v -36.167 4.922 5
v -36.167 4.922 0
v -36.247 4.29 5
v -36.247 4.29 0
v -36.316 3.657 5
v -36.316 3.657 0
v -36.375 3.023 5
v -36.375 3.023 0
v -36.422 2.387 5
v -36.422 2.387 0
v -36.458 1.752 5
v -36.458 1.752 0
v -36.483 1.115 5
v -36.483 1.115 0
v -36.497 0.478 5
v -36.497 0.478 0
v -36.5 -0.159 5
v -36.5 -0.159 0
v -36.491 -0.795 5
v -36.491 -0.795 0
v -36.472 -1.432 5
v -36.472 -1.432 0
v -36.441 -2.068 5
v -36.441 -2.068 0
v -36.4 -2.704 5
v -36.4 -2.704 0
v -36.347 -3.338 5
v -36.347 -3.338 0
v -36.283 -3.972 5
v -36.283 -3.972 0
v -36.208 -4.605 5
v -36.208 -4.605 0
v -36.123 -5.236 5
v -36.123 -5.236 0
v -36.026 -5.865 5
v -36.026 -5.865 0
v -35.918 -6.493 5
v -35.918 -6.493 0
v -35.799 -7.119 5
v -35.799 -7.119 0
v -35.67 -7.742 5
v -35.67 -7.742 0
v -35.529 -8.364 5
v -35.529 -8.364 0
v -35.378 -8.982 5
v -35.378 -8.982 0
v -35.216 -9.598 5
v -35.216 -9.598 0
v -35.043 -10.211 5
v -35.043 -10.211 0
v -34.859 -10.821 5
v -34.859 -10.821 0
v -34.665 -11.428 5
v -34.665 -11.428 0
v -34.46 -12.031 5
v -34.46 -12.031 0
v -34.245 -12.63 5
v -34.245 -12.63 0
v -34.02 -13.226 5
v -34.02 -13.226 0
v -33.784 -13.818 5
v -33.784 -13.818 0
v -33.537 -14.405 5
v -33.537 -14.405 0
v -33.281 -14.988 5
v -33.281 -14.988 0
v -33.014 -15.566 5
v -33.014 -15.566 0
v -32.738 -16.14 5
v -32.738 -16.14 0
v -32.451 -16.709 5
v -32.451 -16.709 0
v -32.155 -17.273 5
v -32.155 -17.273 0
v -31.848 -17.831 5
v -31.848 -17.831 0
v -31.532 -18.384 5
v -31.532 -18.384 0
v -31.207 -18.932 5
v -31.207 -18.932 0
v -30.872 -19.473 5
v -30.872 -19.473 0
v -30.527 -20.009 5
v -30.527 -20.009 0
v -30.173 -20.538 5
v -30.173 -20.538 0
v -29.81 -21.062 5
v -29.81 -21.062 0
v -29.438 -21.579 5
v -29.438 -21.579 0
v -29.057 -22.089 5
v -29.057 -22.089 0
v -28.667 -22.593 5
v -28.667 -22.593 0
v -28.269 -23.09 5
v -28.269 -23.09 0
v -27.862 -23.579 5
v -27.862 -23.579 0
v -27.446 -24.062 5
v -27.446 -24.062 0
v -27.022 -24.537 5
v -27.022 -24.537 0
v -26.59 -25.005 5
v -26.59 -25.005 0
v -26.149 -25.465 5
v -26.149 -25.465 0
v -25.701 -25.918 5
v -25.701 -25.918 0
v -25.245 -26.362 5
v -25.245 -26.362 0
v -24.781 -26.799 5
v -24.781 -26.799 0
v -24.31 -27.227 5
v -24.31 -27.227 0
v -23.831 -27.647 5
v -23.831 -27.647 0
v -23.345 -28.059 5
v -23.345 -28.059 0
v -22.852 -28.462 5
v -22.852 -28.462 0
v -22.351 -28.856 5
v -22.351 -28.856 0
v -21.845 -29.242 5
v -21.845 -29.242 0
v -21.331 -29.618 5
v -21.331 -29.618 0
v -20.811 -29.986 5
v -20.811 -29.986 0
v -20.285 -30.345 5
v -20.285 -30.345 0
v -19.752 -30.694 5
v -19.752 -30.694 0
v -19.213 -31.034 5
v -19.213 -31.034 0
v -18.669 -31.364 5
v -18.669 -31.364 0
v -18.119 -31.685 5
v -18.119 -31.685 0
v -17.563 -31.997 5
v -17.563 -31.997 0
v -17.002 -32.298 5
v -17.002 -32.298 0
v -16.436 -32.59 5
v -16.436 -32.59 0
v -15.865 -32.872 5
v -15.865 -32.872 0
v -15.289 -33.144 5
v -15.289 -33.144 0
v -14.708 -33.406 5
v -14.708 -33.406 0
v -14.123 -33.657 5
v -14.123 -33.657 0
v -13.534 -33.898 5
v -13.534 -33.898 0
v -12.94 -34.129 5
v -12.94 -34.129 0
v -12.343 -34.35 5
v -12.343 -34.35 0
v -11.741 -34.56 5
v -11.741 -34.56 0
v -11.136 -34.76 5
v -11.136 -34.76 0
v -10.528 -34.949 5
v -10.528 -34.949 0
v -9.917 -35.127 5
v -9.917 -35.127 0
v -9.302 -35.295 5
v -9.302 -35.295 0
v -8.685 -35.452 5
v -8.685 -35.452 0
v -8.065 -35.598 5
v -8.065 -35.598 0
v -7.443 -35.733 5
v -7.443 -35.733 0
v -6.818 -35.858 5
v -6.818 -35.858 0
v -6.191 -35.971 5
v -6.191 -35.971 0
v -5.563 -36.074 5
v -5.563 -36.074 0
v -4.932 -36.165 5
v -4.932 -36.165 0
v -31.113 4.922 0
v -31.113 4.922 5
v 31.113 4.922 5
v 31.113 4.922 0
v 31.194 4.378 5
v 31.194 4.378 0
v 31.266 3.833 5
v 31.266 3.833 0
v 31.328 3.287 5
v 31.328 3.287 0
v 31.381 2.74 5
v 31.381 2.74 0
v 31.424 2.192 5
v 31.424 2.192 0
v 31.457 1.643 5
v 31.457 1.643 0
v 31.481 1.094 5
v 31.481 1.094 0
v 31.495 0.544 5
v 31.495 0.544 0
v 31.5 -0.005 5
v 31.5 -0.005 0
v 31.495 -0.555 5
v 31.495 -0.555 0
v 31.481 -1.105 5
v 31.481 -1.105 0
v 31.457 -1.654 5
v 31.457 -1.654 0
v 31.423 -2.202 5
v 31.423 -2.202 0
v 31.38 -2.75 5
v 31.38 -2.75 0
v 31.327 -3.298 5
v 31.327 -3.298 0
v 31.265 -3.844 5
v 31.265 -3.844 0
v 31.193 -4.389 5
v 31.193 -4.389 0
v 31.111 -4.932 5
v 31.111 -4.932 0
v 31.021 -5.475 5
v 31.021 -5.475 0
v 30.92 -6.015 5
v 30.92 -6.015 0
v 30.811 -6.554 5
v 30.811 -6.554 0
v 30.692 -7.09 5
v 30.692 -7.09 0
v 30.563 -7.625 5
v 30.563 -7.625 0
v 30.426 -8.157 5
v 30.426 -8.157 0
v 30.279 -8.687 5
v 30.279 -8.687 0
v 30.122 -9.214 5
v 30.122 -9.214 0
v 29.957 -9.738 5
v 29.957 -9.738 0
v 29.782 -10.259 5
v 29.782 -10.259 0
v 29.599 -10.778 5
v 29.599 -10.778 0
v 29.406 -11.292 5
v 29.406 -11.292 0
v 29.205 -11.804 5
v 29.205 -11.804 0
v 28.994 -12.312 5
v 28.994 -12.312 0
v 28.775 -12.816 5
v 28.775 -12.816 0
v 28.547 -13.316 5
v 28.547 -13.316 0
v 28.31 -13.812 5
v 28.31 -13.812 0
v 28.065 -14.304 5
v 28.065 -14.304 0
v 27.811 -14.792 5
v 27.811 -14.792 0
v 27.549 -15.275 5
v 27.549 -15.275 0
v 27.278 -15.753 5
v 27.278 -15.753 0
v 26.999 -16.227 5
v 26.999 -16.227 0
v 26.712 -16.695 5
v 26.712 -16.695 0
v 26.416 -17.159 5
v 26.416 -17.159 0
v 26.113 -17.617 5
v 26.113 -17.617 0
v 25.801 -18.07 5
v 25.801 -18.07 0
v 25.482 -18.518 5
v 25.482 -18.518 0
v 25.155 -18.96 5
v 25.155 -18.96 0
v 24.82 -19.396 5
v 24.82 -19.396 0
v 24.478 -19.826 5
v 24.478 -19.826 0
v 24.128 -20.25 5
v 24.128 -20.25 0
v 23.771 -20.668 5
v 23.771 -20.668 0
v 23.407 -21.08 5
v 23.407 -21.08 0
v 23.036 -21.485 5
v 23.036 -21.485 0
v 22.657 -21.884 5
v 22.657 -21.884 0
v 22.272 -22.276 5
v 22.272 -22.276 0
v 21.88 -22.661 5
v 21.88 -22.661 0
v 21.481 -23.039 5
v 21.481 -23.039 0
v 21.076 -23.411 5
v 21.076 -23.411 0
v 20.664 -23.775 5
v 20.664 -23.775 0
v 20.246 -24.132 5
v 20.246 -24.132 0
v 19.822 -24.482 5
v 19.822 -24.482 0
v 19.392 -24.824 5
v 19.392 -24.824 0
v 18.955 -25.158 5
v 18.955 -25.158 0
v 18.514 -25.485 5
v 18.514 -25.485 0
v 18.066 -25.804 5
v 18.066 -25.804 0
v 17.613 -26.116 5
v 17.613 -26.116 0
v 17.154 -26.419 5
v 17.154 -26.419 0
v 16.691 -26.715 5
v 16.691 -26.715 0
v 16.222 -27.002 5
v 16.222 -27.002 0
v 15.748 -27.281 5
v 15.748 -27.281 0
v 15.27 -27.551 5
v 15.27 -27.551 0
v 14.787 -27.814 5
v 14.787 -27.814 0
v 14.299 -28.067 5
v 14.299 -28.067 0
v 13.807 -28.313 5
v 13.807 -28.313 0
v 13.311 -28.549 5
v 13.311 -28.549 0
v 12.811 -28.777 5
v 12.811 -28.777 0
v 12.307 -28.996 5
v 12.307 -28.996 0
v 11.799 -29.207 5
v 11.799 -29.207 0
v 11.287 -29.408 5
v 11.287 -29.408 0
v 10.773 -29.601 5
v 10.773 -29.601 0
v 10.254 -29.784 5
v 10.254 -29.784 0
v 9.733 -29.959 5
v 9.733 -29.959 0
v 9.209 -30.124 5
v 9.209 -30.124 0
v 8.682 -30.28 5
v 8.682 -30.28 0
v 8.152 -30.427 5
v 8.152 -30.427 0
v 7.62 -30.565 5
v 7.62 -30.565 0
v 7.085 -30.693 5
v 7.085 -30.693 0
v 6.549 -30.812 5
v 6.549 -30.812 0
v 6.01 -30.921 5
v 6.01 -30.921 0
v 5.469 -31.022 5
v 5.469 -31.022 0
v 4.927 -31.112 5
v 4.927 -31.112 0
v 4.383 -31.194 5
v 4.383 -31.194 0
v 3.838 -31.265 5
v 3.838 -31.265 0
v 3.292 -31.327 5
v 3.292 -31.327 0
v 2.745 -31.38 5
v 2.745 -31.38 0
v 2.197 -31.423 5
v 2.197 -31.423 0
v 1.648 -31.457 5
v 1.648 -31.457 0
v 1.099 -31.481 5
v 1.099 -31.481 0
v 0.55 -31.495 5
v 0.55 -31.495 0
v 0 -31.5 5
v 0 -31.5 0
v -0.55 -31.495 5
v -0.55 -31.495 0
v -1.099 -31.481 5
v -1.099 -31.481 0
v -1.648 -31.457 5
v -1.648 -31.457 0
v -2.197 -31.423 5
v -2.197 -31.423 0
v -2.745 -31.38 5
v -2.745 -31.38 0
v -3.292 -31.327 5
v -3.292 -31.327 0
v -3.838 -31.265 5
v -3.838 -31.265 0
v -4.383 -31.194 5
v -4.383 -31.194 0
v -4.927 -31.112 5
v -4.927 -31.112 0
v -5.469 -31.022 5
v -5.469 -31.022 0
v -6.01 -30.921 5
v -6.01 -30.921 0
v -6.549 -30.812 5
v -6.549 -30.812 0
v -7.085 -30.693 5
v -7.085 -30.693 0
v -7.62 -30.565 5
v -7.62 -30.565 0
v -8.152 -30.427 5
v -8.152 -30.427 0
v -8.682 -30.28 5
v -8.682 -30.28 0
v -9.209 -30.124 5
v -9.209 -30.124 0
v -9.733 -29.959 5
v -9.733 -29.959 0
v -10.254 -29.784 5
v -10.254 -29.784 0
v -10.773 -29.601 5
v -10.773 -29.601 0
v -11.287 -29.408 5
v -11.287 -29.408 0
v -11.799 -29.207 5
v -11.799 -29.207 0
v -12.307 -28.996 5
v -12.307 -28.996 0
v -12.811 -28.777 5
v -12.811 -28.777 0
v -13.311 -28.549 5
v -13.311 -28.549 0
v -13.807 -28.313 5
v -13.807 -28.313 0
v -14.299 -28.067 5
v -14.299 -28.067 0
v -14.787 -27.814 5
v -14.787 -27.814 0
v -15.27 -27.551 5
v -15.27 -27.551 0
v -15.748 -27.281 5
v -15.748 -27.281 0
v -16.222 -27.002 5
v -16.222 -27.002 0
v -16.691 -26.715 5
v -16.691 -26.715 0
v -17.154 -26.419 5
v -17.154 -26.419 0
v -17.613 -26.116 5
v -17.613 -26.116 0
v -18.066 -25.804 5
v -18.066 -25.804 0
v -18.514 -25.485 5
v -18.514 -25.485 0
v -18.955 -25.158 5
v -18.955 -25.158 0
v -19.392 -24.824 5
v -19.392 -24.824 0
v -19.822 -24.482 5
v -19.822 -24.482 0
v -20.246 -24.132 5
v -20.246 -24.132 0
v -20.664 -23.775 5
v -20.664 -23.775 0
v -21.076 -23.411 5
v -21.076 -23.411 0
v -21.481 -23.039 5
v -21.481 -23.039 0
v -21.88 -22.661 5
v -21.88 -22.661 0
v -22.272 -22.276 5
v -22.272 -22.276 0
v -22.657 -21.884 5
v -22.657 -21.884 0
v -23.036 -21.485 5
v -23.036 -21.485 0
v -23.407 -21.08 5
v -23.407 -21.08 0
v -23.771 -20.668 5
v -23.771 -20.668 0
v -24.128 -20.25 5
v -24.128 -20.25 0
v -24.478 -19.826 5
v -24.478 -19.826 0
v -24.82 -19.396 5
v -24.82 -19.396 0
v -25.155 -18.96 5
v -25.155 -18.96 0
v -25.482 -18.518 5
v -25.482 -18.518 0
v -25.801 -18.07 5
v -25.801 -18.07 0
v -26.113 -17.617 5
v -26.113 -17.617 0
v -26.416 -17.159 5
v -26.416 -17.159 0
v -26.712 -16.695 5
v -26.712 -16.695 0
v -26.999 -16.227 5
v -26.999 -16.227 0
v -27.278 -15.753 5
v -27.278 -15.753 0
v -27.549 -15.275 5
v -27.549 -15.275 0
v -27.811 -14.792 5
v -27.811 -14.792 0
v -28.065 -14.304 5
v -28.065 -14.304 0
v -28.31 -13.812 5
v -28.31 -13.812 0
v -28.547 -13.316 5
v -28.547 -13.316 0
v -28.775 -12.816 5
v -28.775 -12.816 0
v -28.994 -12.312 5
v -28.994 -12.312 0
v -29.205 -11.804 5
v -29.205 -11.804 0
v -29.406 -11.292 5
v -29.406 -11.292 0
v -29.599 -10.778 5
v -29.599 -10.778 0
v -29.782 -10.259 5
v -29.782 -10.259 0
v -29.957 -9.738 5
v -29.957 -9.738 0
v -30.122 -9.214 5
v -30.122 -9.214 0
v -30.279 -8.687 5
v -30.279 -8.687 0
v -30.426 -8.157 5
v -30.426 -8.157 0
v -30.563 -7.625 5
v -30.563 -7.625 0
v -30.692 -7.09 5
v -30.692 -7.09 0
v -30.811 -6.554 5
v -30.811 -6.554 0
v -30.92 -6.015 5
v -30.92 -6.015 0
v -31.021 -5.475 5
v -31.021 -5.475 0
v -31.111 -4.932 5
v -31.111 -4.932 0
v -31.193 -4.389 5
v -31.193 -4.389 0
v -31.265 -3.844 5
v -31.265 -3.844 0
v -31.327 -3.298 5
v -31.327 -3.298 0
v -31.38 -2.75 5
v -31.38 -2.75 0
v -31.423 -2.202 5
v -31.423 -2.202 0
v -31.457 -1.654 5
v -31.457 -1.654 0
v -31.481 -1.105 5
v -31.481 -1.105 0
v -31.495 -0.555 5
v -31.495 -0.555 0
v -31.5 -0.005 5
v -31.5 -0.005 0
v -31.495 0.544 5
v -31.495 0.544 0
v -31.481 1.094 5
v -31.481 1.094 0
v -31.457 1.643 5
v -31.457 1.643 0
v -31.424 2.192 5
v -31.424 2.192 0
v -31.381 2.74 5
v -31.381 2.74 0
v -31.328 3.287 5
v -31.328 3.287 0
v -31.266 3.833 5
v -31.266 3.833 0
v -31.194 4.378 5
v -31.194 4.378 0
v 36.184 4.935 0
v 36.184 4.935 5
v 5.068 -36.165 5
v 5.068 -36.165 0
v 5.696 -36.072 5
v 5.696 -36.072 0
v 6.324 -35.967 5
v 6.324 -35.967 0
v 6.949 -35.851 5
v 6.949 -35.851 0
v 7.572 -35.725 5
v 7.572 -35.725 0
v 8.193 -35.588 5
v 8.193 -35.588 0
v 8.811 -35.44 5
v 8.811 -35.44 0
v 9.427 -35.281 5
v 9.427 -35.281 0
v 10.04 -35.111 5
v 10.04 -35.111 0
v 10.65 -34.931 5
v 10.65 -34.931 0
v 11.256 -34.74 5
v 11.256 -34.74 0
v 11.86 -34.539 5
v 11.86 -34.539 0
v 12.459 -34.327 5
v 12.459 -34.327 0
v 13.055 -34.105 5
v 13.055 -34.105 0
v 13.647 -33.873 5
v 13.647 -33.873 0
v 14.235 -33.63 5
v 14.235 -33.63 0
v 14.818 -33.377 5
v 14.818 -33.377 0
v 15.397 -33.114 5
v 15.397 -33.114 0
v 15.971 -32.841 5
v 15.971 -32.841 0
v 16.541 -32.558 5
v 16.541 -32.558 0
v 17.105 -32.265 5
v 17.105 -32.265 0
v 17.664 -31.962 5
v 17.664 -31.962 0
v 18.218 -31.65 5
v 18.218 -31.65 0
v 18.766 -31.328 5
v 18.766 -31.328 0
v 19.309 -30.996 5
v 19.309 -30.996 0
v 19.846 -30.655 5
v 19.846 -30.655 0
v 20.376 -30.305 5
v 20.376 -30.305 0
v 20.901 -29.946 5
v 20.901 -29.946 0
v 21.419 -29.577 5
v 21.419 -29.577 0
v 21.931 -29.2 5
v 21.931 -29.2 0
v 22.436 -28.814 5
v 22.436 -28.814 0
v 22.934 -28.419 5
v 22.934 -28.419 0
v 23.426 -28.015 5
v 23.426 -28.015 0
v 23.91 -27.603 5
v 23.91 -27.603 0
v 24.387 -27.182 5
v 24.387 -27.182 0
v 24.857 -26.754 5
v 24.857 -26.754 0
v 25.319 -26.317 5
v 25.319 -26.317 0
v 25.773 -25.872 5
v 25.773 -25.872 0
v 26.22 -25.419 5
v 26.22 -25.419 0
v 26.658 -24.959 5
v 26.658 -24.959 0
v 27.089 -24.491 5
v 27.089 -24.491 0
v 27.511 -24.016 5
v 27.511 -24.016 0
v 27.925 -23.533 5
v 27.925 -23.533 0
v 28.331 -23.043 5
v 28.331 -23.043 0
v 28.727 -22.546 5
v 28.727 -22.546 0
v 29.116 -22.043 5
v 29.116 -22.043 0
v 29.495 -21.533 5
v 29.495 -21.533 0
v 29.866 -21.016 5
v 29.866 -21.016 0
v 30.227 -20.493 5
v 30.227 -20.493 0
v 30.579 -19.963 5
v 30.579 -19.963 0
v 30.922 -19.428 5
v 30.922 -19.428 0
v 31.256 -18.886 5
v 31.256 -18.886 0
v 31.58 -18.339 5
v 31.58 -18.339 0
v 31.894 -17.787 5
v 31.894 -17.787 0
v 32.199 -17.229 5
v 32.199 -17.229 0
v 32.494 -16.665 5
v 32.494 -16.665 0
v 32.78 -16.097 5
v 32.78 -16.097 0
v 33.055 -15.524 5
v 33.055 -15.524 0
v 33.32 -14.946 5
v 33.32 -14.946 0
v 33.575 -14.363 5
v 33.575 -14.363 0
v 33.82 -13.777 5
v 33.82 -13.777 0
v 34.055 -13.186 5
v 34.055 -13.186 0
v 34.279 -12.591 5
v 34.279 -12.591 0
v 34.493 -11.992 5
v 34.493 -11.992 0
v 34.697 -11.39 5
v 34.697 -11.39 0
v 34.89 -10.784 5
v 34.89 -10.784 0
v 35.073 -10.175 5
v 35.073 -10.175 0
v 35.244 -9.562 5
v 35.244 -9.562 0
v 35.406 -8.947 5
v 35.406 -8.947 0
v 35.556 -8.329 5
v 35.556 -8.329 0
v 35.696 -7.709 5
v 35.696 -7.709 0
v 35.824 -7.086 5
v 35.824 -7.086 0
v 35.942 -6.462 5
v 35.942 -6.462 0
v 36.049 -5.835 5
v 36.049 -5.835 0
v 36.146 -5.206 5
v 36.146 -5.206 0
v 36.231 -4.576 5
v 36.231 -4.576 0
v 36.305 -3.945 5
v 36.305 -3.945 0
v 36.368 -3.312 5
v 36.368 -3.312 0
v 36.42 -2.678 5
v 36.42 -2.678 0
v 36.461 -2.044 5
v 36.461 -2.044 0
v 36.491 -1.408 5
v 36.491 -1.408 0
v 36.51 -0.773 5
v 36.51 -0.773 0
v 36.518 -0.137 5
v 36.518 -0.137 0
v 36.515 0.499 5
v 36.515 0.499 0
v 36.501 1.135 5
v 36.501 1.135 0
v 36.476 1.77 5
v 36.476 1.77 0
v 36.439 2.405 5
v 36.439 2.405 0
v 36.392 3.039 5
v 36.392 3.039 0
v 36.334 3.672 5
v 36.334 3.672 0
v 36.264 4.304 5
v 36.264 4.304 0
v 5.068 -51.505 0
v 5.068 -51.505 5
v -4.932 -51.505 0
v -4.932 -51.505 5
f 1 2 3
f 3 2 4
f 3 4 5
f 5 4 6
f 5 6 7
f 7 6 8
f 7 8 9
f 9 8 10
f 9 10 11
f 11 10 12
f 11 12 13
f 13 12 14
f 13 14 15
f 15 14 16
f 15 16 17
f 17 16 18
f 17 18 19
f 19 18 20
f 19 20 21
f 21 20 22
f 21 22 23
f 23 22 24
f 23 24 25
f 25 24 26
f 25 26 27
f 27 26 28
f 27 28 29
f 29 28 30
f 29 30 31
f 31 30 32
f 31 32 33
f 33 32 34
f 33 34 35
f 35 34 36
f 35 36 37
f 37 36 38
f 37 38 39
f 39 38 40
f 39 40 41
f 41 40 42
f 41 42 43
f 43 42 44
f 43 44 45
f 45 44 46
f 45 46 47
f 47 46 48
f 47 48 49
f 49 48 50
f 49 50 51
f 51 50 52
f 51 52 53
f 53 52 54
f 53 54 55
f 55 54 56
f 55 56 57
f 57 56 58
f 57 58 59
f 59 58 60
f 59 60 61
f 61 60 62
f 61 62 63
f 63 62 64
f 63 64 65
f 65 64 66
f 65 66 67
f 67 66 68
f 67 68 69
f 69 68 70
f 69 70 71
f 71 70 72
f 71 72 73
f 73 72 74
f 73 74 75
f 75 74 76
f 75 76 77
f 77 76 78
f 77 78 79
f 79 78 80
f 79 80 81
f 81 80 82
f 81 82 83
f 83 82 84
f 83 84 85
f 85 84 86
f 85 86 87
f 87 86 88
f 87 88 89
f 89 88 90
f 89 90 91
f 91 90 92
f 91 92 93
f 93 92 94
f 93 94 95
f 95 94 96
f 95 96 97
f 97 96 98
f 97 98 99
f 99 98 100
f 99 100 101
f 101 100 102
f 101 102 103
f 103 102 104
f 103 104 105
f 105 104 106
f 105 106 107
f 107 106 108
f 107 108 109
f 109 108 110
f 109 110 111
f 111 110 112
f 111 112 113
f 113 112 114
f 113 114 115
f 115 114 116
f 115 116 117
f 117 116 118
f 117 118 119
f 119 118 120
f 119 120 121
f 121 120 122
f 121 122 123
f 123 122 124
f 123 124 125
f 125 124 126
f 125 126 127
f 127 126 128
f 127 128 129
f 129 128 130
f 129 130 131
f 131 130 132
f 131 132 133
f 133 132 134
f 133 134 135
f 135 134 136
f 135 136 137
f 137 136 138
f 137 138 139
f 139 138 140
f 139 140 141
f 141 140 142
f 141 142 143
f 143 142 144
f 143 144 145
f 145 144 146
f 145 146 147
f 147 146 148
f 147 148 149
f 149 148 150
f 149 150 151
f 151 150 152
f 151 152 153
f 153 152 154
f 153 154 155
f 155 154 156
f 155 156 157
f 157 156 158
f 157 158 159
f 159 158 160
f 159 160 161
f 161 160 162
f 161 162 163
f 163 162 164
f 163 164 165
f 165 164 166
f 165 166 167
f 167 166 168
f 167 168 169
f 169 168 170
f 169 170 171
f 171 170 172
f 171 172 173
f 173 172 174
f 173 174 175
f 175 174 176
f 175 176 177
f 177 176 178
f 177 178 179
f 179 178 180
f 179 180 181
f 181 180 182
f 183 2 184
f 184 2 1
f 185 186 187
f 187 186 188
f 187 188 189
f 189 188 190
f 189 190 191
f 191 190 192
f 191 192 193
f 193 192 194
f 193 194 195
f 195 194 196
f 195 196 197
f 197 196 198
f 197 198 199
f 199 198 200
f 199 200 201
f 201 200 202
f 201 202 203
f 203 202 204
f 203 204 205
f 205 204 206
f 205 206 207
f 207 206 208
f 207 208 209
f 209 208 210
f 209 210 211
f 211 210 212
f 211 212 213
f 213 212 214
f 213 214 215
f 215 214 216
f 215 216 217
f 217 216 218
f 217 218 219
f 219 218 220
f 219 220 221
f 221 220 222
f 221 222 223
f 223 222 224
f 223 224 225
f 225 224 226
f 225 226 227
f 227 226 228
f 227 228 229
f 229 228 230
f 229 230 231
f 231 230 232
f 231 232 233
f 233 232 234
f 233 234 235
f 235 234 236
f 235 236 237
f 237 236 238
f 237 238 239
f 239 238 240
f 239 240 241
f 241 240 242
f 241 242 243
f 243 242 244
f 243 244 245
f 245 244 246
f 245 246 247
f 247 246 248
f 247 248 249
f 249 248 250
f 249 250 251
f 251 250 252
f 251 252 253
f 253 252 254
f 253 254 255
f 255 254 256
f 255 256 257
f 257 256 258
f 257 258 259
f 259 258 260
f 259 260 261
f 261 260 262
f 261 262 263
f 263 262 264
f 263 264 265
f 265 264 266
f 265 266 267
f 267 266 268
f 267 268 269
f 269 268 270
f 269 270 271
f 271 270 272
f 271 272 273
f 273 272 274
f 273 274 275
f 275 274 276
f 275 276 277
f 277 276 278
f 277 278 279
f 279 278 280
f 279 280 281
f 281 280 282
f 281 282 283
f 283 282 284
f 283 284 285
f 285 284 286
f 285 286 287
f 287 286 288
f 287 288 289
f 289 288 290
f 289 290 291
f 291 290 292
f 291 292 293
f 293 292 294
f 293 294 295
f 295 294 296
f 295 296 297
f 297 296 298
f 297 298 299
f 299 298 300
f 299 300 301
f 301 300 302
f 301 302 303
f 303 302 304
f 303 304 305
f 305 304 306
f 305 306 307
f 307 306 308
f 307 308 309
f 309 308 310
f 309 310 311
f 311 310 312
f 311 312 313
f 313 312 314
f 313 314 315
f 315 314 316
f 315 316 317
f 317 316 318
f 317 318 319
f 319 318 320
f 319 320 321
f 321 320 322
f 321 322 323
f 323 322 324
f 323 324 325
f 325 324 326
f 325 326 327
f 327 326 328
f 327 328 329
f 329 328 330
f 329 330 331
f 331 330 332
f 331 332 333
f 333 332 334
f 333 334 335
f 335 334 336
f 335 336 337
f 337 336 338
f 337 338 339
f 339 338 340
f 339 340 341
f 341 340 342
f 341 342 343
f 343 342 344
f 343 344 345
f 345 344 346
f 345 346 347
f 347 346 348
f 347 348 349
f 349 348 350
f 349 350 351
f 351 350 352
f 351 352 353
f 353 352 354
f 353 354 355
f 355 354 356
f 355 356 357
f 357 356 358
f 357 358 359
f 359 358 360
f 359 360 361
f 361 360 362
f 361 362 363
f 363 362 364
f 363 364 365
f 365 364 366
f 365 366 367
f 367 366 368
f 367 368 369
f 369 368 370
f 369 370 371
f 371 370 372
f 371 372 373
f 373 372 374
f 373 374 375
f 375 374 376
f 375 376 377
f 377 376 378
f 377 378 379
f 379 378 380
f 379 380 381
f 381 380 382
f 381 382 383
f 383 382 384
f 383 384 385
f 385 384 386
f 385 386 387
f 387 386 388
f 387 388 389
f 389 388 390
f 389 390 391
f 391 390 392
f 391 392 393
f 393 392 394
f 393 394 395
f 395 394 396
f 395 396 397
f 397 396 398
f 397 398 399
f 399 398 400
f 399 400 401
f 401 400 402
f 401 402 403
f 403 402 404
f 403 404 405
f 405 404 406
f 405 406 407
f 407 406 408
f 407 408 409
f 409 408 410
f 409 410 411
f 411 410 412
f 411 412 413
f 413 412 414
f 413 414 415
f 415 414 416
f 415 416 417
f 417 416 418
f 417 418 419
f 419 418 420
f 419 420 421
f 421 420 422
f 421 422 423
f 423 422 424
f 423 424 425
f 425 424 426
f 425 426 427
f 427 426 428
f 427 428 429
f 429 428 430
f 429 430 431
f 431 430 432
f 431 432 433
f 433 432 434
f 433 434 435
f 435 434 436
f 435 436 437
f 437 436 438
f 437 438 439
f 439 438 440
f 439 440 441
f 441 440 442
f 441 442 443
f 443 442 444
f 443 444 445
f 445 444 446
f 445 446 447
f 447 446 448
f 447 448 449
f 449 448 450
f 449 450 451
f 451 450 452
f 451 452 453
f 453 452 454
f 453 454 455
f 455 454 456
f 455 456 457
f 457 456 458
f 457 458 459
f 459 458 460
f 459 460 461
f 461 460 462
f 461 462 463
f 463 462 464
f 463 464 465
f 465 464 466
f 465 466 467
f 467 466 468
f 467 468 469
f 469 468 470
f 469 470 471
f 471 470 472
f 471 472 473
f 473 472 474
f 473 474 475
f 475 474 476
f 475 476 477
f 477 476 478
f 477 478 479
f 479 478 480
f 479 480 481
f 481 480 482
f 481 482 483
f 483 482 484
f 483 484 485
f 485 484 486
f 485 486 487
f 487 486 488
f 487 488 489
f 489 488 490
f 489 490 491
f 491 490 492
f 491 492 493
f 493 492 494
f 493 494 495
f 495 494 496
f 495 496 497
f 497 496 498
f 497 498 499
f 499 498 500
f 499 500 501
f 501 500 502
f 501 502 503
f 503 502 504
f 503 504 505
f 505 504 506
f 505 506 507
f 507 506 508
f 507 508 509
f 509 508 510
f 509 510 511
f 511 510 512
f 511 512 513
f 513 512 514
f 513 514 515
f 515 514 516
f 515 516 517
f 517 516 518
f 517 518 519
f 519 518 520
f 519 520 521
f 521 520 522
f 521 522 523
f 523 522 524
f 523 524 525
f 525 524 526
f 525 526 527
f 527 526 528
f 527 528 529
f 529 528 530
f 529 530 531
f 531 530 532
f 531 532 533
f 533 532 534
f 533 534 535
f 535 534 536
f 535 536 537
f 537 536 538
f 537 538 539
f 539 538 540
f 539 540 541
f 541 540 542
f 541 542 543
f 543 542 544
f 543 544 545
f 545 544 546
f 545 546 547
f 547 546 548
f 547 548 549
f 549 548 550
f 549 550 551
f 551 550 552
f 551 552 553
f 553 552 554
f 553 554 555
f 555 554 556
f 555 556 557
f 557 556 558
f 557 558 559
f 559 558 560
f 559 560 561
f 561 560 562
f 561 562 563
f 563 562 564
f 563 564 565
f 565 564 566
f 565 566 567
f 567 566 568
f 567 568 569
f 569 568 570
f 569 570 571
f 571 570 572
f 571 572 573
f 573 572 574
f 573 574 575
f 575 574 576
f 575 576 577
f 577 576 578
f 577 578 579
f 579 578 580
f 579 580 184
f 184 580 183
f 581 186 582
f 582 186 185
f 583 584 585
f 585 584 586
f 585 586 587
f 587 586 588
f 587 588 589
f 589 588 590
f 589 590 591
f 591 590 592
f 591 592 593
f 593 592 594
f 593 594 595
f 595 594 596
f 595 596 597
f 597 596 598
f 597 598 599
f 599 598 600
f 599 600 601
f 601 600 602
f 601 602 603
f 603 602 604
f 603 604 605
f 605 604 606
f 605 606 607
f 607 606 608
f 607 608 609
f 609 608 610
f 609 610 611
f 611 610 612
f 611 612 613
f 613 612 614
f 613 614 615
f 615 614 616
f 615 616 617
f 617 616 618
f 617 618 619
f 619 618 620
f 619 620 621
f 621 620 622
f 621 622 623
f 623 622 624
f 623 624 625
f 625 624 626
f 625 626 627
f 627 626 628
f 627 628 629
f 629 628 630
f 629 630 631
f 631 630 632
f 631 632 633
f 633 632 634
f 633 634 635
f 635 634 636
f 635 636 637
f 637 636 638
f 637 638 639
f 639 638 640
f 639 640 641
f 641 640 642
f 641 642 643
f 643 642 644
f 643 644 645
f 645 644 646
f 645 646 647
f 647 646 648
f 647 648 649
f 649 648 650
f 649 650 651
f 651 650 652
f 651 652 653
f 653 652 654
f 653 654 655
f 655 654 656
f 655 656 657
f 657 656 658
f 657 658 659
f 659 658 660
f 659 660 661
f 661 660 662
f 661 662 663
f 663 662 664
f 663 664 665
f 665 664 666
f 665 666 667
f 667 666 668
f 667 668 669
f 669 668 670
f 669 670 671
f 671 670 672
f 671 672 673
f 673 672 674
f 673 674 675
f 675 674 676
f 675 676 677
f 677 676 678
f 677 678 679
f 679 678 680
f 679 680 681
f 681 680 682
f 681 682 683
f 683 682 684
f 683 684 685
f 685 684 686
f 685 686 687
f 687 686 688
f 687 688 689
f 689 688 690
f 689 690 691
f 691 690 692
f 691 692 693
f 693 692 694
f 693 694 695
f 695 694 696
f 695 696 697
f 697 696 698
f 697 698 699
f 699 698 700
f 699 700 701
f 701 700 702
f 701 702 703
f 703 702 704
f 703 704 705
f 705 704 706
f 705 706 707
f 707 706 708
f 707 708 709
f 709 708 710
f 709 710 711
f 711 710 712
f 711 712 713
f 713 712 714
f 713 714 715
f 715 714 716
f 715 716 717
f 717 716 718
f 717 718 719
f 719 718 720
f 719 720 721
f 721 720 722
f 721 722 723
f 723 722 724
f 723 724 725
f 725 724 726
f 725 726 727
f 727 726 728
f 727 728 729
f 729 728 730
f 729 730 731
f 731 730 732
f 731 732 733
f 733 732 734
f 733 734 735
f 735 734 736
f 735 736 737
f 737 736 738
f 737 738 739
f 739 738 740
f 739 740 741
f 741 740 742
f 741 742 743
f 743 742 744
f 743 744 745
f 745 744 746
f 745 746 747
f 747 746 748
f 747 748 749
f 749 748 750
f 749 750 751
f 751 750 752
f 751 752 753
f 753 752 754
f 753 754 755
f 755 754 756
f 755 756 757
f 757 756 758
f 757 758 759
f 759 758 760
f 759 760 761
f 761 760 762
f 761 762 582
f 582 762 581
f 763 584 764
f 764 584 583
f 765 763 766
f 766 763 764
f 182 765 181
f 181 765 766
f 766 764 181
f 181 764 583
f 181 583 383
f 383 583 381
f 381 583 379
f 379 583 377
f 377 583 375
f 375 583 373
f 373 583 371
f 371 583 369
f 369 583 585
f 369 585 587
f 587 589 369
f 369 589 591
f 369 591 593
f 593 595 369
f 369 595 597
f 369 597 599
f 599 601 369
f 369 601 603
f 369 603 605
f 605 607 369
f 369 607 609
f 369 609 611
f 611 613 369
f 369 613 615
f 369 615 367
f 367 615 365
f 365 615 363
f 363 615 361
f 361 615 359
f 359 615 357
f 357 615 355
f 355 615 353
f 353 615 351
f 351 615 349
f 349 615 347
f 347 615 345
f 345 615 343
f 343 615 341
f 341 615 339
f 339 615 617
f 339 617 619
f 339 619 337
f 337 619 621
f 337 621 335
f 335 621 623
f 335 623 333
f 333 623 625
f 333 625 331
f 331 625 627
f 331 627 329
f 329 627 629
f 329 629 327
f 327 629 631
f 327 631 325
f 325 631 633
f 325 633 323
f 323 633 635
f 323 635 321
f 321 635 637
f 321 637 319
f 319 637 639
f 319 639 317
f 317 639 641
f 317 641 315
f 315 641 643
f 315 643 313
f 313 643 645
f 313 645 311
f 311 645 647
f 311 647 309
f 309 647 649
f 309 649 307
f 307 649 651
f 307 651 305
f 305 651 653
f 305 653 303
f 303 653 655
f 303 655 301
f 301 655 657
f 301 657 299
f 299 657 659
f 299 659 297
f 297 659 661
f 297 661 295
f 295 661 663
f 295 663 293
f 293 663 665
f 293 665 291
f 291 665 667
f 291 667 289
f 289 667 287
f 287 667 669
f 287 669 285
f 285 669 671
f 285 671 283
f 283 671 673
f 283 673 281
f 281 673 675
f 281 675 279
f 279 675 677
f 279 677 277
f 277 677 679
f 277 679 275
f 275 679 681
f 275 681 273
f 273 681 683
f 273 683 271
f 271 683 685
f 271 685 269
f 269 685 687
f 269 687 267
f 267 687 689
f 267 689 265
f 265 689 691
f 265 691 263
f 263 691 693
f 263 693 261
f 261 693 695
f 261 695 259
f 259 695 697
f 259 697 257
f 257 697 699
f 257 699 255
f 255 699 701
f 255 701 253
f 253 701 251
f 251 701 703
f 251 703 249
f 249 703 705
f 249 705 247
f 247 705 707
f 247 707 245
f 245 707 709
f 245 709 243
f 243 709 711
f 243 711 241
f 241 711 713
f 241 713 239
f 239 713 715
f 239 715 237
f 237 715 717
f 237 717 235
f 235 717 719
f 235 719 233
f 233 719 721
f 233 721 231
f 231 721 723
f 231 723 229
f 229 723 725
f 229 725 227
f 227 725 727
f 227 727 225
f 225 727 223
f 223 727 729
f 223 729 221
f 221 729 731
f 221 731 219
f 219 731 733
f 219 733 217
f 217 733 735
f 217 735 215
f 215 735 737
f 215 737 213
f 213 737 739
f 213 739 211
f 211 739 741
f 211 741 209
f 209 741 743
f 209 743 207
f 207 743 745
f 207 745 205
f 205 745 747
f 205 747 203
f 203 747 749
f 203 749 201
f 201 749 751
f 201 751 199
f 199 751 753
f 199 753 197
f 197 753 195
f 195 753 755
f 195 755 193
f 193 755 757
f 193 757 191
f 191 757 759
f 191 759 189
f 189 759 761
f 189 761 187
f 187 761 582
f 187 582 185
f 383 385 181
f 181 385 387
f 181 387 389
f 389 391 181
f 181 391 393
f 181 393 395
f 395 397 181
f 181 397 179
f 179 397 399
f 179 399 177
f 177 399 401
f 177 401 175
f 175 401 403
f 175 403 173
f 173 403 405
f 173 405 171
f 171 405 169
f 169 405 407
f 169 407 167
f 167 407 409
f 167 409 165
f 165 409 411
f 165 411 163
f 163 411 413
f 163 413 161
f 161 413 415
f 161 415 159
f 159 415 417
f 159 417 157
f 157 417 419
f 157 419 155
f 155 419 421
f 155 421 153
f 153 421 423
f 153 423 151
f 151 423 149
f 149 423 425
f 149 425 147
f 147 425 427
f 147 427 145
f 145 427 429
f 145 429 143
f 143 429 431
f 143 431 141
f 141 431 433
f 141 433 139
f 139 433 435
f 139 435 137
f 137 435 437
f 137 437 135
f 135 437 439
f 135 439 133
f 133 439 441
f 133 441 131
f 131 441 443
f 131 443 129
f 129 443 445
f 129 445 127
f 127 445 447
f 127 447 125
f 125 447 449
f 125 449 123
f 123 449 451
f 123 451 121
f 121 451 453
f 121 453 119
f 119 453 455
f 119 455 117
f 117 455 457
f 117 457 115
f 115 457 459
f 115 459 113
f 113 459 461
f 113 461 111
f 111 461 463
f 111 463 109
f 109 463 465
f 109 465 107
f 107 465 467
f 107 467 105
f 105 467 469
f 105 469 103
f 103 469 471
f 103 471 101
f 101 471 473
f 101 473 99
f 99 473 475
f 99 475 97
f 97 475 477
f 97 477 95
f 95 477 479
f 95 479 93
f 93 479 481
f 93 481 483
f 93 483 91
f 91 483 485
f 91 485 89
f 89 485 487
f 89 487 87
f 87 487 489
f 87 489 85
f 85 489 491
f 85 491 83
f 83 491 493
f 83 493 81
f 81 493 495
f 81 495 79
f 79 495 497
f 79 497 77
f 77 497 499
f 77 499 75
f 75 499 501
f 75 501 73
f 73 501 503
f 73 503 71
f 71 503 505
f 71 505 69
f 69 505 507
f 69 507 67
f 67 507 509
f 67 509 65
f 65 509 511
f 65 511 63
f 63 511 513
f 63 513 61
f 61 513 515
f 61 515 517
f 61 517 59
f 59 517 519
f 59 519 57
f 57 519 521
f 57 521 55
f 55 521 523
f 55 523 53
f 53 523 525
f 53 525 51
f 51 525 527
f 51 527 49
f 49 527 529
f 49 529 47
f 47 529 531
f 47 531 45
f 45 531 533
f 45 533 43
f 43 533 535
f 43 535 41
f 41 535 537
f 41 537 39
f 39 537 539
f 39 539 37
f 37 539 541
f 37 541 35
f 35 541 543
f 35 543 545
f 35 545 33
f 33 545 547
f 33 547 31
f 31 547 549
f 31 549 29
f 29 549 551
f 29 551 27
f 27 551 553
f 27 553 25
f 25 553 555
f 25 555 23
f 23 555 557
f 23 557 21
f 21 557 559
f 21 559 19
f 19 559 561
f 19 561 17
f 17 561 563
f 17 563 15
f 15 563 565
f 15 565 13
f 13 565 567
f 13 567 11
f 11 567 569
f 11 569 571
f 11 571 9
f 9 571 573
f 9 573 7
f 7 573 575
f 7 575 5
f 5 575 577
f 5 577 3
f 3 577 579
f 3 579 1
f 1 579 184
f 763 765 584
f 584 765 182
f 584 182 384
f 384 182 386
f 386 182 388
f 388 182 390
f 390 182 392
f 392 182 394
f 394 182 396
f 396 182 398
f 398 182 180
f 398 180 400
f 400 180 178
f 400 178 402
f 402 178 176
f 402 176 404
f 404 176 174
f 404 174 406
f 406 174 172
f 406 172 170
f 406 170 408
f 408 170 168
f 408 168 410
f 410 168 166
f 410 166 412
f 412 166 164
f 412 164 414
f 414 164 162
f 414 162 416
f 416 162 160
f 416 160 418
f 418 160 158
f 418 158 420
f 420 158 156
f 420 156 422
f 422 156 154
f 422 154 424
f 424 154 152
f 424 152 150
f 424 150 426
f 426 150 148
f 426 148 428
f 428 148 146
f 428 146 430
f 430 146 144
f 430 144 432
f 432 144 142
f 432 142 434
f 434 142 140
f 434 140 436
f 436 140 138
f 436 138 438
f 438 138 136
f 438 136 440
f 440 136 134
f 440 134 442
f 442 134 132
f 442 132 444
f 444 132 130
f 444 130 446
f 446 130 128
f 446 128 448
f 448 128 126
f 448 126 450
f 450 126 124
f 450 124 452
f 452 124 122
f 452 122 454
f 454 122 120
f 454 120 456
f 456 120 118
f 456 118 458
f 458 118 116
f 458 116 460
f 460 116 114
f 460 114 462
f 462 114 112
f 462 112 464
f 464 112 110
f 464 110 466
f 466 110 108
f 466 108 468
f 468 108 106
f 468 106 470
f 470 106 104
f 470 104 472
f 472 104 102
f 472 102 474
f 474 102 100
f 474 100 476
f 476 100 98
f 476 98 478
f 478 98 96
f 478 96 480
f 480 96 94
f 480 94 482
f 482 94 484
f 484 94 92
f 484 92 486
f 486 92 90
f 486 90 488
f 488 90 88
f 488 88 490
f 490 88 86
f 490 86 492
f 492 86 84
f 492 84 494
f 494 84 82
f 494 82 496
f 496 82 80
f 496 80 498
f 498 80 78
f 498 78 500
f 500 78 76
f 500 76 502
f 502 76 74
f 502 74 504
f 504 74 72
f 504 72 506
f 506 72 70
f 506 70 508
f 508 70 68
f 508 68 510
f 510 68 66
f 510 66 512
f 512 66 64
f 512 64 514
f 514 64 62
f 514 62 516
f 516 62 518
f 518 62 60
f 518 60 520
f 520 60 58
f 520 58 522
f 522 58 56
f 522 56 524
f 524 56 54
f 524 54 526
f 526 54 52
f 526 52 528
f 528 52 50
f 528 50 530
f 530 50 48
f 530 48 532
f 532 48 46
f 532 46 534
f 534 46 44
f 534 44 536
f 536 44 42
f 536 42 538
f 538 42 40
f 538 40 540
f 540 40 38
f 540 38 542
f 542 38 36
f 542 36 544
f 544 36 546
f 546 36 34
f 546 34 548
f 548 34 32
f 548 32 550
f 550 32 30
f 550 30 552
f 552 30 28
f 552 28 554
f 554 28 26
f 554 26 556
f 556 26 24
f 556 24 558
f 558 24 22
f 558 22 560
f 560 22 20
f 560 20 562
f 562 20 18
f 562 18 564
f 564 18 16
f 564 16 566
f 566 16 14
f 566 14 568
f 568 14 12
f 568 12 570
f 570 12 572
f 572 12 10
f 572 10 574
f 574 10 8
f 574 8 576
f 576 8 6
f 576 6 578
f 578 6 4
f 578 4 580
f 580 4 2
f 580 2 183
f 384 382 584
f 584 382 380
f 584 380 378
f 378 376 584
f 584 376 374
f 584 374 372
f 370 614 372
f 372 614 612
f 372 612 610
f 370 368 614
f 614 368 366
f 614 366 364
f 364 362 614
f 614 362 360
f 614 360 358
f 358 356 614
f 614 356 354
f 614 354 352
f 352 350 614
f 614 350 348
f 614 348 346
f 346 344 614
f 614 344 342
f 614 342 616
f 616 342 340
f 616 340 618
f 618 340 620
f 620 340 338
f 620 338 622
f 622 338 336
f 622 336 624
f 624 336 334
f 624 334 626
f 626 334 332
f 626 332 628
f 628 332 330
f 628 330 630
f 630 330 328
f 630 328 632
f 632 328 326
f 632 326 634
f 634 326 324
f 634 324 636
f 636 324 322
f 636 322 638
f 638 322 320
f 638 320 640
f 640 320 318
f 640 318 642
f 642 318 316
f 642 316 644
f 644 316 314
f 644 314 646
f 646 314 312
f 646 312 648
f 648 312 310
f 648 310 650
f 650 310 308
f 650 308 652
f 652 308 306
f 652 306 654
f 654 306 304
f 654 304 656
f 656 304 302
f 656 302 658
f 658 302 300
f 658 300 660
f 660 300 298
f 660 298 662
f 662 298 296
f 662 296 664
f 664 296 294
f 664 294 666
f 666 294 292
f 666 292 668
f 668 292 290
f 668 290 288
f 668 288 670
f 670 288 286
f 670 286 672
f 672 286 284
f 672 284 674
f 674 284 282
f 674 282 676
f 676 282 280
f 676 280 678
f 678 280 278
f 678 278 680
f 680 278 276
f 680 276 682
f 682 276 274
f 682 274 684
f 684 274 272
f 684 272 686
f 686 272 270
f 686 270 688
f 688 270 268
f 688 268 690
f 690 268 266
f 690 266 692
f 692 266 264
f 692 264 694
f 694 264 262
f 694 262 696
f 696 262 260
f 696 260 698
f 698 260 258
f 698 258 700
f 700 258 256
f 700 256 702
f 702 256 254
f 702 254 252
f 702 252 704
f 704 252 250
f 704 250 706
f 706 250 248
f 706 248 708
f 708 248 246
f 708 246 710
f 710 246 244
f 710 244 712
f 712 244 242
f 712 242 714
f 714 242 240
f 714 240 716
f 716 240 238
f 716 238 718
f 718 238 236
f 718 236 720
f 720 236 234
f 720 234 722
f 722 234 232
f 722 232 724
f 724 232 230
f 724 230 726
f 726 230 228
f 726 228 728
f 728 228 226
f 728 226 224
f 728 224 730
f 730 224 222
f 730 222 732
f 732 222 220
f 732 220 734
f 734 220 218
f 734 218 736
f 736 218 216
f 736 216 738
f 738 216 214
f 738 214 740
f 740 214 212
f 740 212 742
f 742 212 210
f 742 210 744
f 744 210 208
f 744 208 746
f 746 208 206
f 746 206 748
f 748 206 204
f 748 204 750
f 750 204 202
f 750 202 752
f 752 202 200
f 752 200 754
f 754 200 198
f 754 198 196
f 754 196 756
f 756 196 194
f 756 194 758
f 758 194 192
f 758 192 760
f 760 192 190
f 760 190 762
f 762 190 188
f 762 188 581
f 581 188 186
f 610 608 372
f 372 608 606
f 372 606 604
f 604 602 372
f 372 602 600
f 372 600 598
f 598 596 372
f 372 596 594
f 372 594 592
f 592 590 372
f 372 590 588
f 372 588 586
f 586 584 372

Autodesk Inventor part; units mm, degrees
ref_plane "YZ Plane" through (0, 0, 0) normal (1, 0, 0) x (0, 1, 0)
ref_plane "XZ Plane" through (0, 0, 0) normal (0, 1, 0) x (-1, 0, 0)
ref_plane "XY Plane" through (0, 0, 0) normal (0, 0, 1) x (1, 0, 0)
sketch "Sketch1" plane through (0, 0, 0) normal (0, 0, 1) x (1, 0, 0)
  arc A0 (-31.1131, 4.9219) -> (31.1131, 4.9219) centre (0, 0) ccw
  line L0 (-31.1131, 4.9219) -> (-36.1667, 4.9219)
  line L1 (31.1131, 4.9219) -> (36.1836, 4.9349)
  line L2 (31.1131, 4.9219) -> (36.1836, 4.9349) construction
  line L3 (5.0676, -36.5047) -> (5.0676, -51.5047)
  line L4 (5.0676, -51.5047) -> (-4.9324, -51.5047)
  line L5 (-4.9324, -51.5047) -> (-4.9324, -36.5047)
  line L6 (-4.9324, -36.5047) -> (-4.9324, -36.1653)
  line L7 (5.0676, -36.5047) -> (5.0676, -36.1653)
  arc A1 (-36.1667, 4.9219) -> (-4.9324, -36.1653) centre (0, 0) ccw
  arc A2 (5.0676, -36.1653) -> (36.1836, 4.9349) centre (0, 0) ccw
  dimension "d0" = 63
  dimension "d5" = 10
  dimension "d6" = 15
extrude "Extrusion1" add sketch "Sketch1" along normal blind 5
properties part number "Clip_TestFitV1"
